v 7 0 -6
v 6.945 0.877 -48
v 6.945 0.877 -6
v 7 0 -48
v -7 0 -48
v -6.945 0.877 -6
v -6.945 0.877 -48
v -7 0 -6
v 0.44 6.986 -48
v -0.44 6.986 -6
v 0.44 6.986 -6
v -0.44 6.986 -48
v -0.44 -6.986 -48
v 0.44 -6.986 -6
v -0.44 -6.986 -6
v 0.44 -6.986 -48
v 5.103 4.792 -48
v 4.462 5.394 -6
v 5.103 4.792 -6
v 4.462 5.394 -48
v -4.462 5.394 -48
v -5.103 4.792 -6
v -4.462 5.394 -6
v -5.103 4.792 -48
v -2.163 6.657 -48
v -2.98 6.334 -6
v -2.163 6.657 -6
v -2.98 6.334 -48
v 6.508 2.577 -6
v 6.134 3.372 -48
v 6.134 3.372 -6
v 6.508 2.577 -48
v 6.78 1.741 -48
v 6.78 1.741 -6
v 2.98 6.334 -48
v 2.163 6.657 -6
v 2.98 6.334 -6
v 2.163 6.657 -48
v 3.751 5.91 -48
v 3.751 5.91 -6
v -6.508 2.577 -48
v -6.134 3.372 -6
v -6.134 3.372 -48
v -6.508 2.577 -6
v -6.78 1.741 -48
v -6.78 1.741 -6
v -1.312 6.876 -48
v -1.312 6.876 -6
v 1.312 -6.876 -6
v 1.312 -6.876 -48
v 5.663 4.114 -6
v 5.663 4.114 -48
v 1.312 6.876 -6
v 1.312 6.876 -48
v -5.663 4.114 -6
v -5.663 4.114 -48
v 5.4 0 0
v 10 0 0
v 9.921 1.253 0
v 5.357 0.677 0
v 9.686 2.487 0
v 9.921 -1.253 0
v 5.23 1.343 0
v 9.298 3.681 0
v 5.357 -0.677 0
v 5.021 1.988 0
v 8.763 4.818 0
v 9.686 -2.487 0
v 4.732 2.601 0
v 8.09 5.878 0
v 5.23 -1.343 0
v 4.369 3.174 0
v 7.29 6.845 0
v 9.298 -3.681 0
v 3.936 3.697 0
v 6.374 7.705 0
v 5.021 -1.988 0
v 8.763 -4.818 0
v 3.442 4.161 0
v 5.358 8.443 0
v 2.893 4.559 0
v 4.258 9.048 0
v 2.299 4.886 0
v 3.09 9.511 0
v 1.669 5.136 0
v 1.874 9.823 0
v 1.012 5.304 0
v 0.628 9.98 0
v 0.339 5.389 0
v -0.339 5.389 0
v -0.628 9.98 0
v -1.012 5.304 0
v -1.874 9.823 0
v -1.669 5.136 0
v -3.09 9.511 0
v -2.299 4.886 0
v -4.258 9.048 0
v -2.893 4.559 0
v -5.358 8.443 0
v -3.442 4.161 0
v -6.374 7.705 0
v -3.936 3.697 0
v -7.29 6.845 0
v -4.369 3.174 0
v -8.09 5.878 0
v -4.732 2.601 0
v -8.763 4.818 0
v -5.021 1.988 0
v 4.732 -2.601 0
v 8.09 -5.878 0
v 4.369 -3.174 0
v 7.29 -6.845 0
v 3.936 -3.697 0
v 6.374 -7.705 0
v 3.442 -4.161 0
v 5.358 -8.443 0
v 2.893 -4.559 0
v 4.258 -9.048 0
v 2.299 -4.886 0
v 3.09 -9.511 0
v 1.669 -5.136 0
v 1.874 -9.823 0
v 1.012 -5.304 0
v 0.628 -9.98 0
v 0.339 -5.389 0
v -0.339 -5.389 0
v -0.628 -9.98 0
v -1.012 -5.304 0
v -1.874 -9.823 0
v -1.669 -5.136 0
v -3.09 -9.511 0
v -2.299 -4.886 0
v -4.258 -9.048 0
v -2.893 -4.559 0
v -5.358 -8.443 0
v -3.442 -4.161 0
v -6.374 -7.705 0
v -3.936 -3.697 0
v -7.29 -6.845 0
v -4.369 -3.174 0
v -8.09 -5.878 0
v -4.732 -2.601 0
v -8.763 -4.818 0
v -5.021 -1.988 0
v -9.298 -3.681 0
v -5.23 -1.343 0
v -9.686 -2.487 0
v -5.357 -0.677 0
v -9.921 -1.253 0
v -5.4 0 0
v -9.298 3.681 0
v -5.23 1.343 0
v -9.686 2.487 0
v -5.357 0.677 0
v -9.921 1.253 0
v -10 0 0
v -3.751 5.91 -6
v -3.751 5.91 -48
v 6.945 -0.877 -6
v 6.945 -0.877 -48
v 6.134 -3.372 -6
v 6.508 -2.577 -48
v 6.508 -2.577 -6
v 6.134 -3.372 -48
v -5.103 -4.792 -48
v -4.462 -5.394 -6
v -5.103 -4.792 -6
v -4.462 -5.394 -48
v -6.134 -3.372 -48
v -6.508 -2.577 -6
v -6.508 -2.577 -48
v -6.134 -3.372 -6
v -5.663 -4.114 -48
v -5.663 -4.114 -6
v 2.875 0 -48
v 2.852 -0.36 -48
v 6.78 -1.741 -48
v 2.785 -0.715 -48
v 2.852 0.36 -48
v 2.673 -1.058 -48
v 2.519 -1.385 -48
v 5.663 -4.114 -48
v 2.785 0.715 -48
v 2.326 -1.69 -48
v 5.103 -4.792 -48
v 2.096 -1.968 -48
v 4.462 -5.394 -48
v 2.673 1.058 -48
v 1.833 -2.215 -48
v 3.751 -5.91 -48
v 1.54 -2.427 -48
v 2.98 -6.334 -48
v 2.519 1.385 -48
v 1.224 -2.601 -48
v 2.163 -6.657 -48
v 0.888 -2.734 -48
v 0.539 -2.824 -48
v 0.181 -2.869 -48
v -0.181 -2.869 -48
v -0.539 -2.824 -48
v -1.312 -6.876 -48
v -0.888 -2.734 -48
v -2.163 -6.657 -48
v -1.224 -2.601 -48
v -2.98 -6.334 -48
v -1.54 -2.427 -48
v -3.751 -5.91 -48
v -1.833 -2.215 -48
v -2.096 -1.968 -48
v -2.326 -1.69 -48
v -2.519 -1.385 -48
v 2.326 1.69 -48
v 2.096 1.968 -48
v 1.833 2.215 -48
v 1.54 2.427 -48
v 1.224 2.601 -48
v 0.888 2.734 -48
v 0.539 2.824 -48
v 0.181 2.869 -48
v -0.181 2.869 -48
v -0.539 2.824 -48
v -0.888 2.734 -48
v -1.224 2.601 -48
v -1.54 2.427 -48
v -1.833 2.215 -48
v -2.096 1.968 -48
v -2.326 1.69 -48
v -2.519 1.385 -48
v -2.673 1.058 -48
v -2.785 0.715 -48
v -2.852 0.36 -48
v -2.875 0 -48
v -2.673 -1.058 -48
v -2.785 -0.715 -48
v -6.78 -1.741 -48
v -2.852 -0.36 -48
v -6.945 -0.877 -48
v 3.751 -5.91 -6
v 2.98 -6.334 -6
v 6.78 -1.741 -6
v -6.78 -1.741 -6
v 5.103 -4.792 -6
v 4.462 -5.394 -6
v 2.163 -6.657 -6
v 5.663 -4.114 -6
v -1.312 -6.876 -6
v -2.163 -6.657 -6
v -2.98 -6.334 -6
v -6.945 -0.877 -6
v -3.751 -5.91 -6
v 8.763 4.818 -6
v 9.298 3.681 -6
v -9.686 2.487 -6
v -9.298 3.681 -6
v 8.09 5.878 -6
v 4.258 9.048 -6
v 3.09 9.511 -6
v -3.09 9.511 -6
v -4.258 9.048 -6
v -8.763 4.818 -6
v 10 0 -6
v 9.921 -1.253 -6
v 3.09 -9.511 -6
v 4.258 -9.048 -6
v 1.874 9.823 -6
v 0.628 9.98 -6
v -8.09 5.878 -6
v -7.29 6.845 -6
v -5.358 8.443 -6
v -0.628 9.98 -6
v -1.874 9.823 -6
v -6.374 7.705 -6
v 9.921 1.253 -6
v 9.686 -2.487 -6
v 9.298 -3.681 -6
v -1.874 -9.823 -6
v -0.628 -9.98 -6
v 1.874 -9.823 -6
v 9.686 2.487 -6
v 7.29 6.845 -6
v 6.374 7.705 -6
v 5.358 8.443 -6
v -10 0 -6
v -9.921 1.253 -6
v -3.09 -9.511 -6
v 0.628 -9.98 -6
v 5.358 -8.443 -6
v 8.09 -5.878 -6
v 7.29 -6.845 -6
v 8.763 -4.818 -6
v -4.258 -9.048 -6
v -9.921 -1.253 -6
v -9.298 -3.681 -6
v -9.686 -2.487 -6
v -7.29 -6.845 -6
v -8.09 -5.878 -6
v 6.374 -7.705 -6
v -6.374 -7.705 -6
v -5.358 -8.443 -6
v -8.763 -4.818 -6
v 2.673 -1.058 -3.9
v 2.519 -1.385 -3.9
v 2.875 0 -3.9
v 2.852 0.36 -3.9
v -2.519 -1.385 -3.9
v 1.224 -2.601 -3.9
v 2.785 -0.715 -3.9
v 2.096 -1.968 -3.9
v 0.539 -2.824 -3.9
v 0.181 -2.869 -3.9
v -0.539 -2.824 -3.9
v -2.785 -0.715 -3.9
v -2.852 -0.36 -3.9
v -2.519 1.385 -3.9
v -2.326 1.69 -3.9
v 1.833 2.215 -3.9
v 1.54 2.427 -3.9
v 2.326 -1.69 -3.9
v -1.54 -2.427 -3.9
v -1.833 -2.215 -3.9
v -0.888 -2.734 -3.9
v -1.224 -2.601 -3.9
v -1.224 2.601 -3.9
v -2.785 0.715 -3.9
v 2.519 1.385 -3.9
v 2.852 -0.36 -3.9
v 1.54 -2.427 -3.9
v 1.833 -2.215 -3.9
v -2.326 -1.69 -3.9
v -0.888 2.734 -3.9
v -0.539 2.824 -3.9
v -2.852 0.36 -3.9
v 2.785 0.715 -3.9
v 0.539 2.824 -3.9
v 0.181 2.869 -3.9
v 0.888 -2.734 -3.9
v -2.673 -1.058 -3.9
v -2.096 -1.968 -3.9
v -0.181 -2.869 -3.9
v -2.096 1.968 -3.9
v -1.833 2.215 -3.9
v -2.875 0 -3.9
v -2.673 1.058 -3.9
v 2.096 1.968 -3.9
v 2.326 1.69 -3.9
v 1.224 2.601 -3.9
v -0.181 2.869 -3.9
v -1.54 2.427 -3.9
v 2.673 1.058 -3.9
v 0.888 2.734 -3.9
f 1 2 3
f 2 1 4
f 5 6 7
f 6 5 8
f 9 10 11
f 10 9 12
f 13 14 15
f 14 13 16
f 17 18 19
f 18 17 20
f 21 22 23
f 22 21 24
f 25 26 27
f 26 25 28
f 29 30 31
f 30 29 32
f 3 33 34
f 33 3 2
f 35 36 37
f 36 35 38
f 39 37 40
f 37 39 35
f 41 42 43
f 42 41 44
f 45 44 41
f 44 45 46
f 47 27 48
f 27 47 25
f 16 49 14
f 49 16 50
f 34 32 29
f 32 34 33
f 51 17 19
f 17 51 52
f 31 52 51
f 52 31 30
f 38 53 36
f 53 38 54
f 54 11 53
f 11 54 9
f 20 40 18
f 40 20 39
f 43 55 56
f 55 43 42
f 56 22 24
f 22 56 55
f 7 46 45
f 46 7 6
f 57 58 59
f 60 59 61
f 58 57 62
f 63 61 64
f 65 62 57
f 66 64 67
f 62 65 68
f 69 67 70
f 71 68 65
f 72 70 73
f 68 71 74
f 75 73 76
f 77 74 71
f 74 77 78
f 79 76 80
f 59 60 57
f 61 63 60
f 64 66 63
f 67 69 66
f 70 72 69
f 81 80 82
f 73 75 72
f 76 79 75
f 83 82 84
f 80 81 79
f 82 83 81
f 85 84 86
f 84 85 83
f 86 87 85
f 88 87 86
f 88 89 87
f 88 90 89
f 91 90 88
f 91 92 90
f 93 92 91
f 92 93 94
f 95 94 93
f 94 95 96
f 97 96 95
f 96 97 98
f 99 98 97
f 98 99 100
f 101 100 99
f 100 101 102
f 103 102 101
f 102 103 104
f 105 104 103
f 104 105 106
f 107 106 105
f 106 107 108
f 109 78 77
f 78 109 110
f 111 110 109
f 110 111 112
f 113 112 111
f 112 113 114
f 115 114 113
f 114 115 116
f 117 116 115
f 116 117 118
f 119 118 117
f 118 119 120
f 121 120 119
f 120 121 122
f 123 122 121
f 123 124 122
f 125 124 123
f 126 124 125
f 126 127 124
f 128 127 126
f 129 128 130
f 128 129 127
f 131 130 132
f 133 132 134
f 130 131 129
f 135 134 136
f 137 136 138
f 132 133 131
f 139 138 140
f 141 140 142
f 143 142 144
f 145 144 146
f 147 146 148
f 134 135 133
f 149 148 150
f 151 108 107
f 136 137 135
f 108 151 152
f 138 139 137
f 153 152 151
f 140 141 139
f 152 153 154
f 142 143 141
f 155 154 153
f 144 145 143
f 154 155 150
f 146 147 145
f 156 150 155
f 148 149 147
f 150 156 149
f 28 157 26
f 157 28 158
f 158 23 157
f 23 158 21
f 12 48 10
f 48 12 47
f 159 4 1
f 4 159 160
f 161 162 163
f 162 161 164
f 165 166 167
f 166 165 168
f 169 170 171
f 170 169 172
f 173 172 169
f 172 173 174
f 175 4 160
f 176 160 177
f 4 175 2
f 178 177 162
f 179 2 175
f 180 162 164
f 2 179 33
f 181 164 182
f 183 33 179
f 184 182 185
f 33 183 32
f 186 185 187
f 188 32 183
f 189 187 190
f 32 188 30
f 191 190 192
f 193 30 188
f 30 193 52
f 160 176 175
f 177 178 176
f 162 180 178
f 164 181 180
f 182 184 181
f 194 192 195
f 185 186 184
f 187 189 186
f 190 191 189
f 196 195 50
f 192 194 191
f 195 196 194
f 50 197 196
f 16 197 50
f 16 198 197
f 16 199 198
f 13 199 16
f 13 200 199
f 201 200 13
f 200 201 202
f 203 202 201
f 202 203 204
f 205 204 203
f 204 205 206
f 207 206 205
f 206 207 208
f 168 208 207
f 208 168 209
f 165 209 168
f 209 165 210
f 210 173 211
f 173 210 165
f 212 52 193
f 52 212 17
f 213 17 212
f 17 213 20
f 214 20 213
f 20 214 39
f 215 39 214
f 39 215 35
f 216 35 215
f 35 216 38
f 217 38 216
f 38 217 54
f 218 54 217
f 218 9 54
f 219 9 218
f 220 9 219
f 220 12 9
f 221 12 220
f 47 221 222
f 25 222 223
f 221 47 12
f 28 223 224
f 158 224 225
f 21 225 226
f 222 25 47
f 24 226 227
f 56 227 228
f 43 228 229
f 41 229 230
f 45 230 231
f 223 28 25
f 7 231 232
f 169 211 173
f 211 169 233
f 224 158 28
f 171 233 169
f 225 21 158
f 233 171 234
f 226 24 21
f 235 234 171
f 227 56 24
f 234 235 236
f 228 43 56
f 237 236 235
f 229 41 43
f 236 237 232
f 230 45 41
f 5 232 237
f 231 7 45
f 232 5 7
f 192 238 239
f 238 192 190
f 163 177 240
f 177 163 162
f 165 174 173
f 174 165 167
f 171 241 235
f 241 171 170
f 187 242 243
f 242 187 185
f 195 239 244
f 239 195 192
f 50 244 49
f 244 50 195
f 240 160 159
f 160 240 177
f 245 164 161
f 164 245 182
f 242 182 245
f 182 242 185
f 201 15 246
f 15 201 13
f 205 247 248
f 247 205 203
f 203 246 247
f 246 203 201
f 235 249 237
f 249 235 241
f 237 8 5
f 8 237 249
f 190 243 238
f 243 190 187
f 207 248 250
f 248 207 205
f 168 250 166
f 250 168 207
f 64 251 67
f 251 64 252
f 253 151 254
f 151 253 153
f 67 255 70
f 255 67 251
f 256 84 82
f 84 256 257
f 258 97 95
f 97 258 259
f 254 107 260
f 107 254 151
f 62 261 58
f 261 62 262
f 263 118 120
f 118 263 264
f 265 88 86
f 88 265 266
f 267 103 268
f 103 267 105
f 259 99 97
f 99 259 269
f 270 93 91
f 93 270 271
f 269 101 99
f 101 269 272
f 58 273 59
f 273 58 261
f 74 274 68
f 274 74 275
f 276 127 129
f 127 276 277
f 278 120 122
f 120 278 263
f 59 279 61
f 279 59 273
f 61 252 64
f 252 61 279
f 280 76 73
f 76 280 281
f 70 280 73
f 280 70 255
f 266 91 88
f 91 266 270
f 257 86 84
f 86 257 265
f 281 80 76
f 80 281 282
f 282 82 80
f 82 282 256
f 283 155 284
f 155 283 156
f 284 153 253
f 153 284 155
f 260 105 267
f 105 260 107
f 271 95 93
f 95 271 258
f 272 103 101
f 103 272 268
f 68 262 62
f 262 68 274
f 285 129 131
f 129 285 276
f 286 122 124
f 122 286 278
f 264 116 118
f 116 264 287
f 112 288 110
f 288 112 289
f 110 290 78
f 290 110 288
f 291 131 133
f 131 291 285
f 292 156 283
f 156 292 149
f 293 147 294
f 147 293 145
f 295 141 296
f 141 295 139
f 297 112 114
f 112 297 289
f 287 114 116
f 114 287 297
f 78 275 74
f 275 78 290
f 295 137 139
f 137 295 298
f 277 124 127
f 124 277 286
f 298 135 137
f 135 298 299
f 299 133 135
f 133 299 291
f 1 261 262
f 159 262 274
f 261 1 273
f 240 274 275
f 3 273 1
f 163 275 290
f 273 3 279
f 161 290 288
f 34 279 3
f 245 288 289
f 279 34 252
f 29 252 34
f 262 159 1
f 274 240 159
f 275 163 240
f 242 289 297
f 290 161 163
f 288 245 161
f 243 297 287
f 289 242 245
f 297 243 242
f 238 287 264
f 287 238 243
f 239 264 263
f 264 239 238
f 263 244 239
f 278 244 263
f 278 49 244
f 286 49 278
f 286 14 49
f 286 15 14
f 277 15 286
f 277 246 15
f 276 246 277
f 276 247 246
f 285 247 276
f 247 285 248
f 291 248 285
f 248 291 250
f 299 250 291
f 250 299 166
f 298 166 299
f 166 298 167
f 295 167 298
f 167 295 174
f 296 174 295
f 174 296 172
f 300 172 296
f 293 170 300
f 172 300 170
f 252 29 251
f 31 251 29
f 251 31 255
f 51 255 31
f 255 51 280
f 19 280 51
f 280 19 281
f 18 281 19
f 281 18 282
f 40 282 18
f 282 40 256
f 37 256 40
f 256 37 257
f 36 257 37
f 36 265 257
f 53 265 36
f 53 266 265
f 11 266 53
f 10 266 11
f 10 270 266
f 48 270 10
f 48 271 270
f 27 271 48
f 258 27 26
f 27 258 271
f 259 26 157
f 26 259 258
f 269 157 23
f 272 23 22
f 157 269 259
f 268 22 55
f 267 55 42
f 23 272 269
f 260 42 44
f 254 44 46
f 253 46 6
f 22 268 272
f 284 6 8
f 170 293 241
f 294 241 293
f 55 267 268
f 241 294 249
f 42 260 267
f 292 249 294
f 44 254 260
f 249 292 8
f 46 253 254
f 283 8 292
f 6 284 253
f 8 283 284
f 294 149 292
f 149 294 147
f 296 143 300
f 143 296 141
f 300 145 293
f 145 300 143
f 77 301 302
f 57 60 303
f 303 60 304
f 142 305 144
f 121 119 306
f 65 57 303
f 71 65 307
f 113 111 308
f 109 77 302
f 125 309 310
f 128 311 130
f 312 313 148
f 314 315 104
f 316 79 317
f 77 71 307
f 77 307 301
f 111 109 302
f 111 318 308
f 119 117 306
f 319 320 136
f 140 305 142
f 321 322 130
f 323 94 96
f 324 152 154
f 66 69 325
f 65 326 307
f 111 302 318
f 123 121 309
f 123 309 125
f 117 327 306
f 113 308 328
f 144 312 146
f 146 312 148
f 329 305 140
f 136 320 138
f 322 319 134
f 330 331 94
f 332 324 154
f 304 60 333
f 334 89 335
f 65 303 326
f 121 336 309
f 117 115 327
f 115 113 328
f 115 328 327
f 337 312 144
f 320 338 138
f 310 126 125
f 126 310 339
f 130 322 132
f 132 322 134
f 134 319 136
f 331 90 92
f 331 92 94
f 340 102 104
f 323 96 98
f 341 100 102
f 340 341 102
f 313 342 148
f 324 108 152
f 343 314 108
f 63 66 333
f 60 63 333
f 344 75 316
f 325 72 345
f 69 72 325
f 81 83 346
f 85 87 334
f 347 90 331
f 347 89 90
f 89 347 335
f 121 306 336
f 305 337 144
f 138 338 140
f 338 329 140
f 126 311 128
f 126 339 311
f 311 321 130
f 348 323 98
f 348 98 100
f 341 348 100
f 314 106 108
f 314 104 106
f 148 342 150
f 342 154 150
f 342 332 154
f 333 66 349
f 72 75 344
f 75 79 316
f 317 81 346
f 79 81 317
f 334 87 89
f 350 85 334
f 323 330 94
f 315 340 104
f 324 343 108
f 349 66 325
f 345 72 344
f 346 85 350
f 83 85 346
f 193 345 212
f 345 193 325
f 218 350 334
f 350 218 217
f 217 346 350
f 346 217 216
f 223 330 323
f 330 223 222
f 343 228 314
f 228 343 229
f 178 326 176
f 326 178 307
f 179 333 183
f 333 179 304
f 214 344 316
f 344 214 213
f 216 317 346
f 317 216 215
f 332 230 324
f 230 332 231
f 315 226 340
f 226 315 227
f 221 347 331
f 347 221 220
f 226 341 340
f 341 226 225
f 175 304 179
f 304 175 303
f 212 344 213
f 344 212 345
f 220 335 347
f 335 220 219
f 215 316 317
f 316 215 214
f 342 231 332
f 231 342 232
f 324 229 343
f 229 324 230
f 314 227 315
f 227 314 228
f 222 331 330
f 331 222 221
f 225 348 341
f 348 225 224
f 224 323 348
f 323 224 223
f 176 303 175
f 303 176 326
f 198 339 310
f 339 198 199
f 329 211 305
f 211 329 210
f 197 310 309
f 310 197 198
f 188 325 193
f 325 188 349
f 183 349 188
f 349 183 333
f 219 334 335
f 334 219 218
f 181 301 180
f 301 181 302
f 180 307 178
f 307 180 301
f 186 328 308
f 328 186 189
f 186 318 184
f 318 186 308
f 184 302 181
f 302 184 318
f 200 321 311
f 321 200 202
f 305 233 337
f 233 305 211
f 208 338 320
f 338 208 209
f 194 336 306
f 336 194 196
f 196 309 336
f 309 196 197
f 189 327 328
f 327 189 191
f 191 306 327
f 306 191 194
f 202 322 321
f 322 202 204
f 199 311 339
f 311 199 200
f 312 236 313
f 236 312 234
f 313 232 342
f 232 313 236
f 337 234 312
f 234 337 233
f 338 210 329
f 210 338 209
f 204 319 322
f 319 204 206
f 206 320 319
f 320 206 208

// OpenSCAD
$fn = 50;


difference() {
	union() {
		translate(v = [0, 0, -48.0000000000]) {
			cylinder(h = 48, r = 7.0000000000);
		}
		translate(v = [0, 0, -6.0000000000]) {
			cylinder(h = 6, r = 10.0000000000);
		}
	}
	union() {
		translate(v = [0, 0, 0]) {
			rotate(a = [0, 0, 0]) {
				difference() {
					union() {
						#translate(v = [0, 0, -48.0000000000]) {
							cylinder(h = 48, r = 2.6000000000);
						}
						#translate(v = [0, 0, -3.9000000000]) {
							cylinder(h = 3.9000000000, r1 = 2.8750000000, r2 = 5.4000000000);
						}
						#translate(v = [0, 0, -48.0000000000]) {
							cylinder(h = 48, r = 2.8750000000);
						}
						#translate(v = [0, 0, -48.0000000000]) {
							cylinder(h = 48, r = 2.6000000000);
						}
					}
					union();
				}
			}
		}
	}
}
